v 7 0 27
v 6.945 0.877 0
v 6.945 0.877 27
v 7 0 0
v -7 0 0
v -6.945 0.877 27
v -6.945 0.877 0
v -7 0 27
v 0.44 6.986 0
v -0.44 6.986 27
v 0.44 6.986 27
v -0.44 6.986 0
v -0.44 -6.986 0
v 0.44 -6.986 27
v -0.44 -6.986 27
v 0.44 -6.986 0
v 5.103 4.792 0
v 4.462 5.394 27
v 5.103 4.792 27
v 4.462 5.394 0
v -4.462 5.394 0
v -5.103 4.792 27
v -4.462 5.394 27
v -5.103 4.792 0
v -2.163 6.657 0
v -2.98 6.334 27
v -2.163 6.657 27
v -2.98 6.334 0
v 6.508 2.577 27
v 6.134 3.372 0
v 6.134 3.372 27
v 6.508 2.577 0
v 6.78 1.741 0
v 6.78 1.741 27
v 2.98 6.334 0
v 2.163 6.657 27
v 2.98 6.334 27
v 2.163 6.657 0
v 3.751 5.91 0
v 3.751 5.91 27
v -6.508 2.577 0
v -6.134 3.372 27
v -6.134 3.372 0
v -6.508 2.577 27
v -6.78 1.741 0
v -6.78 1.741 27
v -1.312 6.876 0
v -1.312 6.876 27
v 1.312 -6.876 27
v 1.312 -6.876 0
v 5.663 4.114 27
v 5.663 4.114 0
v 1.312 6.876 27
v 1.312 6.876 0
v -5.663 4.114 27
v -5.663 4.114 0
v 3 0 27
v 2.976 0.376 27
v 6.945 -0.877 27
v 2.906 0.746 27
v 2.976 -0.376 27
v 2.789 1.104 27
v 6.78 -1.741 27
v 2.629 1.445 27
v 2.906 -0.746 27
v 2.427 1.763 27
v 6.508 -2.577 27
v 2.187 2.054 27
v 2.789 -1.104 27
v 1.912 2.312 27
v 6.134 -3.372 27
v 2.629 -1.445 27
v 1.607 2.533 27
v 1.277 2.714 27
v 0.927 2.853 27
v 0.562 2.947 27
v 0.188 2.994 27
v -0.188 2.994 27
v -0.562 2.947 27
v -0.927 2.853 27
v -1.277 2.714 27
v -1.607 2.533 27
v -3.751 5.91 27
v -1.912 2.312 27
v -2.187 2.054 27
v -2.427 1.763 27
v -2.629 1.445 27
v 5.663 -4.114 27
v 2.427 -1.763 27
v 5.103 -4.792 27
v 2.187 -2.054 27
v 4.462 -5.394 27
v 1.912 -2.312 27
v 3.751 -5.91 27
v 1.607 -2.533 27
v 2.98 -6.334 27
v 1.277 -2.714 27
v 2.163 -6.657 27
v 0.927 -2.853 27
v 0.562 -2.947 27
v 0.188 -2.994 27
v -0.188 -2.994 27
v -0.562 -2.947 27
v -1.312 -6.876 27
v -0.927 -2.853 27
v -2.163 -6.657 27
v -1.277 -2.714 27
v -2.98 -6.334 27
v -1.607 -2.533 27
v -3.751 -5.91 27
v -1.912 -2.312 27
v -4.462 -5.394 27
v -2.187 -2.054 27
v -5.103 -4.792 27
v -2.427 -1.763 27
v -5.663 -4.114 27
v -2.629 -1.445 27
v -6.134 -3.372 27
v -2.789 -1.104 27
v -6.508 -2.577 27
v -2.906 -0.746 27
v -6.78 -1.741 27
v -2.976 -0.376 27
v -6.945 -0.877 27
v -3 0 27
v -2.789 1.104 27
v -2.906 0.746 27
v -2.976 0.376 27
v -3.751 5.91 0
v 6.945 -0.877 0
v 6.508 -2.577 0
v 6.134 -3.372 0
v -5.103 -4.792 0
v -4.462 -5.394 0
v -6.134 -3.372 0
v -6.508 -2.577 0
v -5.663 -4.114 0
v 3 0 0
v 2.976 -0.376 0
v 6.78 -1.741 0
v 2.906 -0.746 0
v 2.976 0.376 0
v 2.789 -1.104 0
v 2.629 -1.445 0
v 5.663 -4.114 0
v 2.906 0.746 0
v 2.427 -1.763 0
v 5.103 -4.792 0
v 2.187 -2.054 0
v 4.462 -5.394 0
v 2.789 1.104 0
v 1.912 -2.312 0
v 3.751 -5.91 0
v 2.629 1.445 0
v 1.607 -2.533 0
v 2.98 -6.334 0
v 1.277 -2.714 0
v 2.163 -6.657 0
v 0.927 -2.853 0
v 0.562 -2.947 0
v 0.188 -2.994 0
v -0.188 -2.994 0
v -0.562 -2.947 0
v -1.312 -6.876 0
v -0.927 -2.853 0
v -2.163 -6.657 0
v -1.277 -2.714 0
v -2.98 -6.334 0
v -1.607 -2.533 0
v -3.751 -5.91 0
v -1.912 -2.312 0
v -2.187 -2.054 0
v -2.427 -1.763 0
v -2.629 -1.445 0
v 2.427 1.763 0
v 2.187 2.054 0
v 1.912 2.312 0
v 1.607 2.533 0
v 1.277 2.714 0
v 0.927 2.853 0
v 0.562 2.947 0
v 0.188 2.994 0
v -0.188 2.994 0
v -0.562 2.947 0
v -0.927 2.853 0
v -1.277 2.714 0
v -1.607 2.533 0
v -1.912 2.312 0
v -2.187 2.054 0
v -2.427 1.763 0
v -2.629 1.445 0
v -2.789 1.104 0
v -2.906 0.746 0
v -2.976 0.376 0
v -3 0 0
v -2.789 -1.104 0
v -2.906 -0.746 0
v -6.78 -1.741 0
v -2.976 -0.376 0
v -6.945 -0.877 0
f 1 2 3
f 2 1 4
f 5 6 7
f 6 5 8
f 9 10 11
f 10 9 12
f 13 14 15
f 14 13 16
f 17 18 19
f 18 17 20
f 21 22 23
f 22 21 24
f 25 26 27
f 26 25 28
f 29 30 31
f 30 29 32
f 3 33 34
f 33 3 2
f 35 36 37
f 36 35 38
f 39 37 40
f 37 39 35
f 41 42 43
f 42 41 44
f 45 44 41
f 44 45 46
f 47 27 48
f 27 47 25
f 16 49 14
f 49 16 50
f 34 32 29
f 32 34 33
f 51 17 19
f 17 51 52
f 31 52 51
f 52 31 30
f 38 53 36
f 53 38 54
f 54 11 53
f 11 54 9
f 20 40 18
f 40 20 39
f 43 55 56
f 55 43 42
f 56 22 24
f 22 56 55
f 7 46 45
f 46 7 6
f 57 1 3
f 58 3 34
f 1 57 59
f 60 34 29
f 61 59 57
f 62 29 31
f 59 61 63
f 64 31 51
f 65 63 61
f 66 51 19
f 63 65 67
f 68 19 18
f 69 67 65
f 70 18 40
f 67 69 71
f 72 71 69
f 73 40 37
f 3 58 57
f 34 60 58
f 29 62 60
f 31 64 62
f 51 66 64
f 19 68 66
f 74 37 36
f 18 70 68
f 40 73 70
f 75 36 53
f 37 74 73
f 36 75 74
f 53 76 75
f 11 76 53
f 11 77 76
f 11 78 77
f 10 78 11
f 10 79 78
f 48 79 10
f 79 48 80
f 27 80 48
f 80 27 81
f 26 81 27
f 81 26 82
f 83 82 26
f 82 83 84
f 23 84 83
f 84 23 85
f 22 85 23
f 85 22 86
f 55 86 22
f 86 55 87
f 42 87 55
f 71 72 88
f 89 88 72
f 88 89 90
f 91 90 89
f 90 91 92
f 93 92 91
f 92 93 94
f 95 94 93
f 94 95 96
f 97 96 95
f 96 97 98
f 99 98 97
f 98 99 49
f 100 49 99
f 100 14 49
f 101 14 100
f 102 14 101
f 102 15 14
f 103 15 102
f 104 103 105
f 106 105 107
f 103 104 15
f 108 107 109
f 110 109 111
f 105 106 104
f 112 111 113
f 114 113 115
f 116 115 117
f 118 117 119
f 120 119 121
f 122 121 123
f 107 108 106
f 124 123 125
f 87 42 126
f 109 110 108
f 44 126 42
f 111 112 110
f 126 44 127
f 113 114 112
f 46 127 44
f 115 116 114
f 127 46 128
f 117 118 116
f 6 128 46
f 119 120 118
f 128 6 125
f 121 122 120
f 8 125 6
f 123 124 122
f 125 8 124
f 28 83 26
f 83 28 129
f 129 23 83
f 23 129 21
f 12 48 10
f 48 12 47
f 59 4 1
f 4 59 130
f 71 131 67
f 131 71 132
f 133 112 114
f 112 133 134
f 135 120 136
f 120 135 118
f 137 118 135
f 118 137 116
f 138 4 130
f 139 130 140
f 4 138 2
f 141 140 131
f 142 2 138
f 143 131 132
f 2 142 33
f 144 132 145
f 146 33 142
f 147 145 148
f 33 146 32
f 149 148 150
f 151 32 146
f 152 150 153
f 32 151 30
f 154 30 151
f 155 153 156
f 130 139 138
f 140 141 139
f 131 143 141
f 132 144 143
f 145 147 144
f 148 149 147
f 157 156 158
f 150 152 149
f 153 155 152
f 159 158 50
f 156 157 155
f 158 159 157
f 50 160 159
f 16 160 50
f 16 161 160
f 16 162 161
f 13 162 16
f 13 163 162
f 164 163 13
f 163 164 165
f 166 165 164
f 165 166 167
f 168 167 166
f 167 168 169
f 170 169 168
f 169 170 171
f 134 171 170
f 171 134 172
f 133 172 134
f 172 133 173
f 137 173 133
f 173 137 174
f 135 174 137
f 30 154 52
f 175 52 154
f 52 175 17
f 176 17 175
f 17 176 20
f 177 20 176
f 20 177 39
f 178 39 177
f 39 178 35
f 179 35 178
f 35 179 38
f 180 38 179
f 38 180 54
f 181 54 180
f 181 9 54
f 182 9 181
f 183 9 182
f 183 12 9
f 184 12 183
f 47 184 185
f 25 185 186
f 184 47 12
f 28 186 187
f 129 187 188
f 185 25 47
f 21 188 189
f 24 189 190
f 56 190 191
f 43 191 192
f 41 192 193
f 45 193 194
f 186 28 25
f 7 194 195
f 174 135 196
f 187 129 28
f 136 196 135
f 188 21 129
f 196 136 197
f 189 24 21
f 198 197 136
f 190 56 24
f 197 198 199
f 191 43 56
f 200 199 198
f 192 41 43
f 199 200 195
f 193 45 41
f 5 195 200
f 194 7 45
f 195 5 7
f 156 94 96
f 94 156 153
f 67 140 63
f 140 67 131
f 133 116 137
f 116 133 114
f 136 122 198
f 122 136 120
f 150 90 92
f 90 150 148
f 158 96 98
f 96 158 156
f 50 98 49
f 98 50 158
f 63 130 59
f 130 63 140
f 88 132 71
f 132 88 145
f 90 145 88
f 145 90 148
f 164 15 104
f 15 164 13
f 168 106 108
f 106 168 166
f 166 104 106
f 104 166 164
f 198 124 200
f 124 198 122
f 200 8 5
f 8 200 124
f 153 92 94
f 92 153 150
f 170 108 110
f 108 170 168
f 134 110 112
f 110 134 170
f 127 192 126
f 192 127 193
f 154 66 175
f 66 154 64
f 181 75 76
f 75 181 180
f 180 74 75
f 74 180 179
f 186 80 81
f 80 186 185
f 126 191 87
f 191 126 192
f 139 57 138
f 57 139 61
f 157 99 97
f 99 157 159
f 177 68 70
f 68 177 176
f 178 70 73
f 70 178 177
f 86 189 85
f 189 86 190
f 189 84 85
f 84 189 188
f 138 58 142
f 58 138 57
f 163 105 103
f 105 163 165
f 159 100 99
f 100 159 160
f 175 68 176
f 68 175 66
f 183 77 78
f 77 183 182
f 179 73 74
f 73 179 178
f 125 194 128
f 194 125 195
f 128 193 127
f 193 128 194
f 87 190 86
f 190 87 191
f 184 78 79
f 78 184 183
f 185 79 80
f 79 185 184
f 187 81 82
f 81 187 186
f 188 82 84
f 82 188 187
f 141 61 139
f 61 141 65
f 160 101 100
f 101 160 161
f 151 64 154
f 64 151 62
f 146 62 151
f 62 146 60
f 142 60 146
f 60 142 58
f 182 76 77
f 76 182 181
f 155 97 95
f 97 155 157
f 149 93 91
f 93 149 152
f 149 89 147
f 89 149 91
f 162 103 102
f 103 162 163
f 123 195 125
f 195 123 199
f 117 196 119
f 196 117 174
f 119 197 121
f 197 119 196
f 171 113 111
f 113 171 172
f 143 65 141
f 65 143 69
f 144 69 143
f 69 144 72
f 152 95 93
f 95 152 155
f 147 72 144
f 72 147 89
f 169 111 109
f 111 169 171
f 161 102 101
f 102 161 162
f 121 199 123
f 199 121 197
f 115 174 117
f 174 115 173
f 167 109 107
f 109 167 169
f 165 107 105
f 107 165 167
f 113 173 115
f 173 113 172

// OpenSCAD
$fn = 50;


difference() {
	union() {
		cylinder(h = 27, r = 7.0000000000);
	}
	union() {
		translate(v = [0, 0, -100]) {
			cylinder(h = 200, r = 3.0000000000);
		}
	}
}
